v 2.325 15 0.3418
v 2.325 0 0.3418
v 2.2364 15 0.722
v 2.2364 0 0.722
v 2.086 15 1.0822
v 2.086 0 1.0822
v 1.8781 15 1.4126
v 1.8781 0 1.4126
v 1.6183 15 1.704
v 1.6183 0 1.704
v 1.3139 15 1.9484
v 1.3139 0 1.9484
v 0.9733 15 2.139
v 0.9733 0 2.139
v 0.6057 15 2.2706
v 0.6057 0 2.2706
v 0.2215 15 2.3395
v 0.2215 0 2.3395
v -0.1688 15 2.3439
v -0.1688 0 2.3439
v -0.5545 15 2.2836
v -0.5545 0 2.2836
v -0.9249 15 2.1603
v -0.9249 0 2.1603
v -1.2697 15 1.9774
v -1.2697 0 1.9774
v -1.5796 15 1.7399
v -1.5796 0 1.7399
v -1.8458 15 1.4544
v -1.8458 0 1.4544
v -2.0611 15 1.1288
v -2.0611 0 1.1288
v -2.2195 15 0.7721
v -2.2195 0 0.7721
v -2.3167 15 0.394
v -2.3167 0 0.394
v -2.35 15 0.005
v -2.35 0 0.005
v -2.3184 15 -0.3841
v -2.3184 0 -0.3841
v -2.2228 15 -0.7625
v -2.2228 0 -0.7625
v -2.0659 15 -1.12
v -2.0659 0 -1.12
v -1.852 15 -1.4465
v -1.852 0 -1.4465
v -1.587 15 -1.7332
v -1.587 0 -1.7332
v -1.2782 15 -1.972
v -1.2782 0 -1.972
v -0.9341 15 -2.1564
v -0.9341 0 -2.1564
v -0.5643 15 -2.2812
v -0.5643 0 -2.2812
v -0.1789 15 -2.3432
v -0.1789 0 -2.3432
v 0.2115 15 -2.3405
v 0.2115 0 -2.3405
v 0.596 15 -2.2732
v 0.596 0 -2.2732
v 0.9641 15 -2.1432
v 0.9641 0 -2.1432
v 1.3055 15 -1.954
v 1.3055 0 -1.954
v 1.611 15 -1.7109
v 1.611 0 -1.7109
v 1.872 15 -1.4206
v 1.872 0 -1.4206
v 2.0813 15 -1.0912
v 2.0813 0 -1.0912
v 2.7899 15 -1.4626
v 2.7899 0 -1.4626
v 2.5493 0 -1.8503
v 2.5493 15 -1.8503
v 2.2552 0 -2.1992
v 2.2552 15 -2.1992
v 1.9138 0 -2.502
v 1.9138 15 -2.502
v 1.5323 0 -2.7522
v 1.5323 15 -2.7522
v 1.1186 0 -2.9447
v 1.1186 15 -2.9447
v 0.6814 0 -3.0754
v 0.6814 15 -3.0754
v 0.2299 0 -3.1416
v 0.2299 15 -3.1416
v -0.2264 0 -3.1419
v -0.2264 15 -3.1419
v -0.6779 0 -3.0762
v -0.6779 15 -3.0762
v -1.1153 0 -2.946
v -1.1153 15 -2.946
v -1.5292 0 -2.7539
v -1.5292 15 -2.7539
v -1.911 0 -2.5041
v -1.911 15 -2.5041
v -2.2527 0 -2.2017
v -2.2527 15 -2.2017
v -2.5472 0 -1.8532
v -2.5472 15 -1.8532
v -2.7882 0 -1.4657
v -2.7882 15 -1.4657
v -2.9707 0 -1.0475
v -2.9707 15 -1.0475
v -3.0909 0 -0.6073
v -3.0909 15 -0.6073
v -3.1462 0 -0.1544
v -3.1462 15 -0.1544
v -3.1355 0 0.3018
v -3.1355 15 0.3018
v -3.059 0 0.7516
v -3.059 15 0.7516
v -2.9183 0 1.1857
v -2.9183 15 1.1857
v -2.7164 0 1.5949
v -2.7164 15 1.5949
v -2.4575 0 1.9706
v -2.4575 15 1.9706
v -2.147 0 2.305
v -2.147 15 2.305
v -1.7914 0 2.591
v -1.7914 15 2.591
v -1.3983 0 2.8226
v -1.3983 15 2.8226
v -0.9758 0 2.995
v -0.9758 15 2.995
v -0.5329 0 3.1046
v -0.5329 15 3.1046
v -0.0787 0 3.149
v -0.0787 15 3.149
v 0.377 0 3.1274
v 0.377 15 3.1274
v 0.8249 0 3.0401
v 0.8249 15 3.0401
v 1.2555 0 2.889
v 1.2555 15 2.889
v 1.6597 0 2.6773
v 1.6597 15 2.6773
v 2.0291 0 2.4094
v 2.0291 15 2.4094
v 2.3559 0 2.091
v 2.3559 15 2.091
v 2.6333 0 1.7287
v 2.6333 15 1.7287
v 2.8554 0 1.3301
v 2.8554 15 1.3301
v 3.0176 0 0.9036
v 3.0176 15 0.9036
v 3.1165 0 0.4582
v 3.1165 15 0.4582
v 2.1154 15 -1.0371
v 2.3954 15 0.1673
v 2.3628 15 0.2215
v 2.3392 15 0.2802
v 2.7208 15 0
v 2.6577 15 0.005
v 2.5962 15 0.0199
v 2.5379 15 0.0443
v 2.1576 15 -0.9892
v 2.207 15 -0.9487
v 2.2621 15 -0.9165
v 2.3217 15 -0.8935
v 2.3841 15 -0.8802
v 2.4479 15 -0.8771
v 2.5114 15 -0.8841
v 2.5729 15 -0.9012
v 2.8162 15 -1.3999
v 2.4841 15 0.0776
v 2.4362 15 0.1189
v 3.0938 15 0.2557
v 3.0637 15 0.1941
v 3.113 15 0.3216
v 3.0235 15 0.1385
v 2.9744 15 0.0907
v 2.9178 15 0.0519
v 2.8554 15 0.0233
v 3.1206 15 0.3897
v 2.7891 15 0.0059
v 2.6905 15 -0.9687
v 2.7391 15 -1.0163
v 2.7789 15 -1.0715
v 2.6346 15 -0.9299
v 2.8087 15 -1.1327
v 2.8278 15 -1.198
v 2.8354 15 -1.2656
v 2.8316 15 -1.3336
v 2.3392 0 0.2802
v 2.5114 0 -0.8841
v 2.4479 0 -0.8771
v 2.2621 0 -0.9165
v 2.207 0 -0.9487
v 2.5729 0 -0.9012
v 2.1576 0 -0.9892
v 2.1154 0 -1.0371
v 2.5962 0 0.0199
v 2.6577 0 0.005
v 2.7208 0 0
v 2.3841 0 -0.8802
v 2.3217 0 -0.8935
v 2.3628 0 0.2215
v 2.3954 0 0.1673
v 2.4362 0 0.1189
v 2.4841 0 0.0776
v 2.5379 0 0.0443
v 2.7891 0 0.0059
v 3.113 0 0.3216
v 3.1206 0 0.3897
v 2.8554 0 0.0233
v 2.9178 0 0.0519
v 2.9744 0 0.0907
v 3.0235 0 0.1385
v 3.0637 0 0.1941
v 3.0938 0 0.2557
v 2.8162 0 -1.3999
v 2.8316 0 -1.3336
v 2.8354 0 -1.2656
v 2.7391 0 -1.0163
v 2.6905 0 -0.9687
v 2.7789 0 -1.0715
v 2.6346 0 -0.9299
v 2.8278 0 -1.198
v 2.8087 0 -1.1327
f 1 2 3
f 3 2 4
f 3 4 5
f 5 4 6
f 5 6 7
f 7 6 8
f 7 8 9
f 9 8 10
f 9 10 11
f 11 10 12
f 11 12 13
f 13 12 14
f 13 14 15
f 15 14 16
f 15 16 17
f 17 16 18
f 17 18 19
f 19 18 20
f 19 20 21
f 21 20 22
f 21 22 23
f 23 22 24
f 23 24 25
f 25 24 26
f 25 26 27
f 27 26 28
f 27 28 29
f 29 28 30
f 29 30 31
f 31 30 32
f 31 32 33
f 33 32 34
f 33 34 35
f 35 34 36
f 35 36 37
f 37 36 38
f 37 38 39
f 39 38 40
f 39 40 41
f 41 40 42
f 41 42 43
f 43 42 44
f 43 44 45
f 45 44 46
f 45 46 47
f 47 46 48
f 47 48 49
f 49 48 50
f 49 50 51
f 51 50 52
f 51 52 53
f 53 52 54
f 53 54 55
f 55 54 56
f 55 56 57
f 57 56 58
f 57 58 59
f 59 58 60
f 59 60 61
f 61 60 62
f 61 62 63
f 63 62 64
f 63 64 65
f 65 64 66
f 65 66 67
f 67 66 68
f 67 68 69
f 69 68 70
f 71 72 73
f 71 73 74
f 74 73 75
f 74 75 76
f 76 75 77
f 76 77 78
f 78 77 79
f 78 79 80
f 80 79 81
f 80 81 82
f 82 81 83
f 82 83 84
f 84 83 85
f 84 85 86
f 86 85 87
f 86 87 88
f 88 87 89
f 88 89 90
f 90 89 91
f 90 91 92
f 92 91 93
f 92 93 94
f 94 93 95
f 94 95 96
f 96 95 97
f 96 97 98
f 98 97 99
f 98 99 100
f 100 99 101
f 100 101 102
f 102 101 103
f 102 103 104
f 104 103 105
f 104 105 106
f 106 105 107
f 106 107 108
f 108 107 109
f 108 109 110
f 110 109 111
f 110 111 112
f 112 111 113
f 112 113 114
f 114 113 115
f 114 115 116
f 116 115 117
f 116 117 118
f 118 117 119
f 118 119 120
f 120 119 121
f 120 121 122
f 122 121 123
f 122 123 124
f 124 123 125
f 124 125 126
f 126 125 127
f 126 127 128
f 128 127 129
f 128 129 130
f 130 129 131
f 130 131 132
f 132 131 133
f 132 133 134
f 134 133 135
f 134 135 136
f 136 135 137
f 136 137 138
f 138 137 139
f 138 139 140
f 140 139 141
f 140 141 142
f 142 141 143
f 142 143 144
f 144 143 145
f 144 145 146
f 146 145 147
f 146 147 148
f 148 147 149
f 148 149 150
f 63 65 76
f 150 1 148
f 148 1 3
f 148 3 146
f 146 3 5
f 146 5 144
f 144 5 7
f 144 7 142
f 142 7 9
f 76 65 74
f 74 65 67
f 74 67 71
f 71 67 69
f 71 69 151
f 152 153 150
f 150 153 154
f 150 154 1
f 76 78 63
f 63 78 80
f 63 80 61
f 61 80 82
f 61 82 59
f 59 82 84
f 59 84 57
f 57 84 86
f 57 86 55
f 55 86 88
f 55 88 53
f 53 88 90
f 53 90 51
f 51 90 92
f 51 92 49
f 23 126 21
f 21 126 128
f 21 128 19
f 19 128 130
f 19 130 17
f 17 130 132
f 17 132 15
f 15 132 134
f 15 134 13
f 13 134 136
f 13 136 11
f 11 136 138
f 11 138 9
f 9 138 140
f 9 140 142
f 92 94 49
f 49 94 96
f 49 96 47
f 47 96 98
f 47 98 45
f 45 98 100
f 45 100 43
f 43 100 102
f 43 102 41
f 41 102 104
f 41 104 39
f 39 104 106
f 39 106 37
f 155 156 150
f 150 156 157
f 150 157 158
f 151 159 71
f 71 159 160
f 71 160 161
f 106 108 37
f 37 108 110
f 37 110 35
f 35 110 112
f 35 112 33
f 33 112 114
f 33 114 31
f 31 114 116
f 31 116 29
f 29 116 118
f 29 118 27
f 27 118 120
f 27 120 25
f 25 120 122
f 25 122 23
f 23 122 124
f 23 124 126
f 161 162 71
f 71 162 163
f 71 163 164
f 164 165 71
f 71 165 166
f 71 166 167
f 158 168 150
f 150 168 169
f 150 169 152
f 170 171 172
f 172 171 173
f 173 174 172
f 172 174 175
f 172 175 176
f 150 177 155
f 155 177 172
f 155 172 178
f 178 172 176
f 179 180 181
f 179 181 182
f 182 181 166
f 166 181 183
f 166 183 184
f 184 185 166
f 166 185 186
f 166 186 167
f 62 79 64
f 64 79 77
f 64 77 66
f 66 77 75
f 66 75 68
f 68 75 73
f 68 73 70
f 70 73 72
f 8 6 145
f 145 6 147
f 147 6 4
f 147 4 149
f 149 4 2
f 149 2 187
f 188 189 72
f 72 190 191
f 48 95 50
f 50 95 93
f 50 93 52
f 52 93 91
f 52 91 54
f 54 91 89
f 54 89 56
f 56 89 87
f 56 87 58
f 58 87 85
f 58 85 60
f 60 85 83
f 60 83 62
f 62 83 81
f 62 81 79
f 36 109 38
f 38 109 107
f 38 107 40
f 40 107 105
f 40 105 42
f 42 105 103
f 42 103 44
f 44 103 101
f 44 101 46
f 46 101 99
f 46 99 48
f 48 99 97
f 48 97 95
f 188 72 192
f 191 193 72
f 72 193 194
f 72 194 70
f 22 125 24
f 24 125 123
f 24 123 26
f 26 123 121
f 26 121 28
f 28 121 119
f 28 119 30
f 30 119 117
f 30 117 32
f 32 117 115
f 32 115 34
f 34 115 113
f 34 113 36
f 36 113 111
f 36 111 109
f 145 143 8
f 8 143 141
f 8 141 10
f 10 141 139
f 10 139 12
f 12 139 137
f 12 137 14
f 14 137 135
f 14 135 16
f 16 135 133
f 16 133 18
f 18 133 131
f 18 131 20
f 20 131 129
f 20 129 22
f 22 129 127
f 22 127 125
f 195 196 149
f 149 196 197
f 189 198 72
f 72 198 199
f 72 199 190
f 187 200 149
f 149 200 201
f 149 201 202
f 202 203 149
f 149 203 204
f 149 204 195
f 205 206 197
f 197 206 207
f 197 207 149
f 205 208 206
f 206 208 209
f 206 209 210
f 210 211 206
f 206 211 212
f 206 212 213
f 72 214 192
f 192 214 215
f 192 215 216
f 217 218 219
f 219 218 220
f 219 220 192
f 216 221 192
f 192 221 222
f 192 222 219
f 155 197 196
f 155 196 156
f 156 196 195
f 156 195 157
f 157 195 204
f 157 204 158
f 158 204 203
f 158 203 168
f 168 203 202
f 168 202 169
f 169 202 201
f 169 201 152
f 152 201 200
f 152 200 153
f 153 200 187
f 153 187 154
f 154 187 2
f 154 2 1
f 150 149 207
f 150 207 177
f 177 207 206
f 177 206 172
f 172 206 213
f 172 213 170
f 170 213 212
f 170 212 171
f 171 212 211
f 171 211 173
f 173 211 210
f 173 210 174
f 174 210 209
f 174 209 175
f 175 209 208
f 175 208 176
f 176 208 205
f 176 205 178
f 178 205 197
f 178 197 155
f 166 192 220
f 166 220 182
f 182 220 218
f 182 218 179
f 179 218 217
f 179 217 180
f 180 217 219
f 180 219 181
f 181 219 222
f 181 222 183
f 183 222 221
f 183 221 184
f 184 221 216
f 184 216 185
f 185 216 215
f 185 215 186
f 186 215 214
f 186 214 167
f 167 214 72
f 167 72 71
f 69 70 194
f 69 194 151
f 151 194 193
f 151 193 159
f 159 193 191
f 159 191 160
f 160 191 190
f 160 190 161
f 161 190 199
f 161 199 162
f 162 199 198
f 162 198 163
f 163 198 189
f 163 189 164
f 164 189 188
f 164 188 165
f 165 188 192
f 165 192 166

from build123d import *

# Parameters (mm, degrees)
BOSS_EXTRUDE1_DEPTH = 15
FILLET1_R           = 0.4


with BuildPart() as part:
    # Sketch1 → Boss-Extrude1 (new body)
    with BuildSketch(Plane(origin=(0, 0, 0), x_dir=(1, 0, 0), z_dir=(0, 1, 0))):
        with BuildLine():
            Line((2.219557977, 0.772050767), (2.971014846, 1.046695174))
            ThreePointArc((2.971014846, 1.046695174), (-3.104931301, -0.530944082), (3.15, 0))
            Line((3.15, 0), (2.35, 0))
            ThreePointArc((2.35, 0), (-2.317160034, -0.391496331), (2.219557977, 0.772050767))
        make_face()
    extrude(amount=BOSS_EXTRUDE1_DEPTH)

    # Fillet1
    fillet1_edges = [part.edges().sort_by_distance(p)[0] for p in [
        (3.15, 7.5, 0),
        (2.35, 7.5, 0),
        (2.219557977, 7.5, -0.772050767),
        (2.971014846, 7.5, -1.046695174),
    ]]
    fillet(fillet1_edges, radius=FILLET1_R - 0.0001)  # a hair under: the kernel refuses the full size


solid = part.part
